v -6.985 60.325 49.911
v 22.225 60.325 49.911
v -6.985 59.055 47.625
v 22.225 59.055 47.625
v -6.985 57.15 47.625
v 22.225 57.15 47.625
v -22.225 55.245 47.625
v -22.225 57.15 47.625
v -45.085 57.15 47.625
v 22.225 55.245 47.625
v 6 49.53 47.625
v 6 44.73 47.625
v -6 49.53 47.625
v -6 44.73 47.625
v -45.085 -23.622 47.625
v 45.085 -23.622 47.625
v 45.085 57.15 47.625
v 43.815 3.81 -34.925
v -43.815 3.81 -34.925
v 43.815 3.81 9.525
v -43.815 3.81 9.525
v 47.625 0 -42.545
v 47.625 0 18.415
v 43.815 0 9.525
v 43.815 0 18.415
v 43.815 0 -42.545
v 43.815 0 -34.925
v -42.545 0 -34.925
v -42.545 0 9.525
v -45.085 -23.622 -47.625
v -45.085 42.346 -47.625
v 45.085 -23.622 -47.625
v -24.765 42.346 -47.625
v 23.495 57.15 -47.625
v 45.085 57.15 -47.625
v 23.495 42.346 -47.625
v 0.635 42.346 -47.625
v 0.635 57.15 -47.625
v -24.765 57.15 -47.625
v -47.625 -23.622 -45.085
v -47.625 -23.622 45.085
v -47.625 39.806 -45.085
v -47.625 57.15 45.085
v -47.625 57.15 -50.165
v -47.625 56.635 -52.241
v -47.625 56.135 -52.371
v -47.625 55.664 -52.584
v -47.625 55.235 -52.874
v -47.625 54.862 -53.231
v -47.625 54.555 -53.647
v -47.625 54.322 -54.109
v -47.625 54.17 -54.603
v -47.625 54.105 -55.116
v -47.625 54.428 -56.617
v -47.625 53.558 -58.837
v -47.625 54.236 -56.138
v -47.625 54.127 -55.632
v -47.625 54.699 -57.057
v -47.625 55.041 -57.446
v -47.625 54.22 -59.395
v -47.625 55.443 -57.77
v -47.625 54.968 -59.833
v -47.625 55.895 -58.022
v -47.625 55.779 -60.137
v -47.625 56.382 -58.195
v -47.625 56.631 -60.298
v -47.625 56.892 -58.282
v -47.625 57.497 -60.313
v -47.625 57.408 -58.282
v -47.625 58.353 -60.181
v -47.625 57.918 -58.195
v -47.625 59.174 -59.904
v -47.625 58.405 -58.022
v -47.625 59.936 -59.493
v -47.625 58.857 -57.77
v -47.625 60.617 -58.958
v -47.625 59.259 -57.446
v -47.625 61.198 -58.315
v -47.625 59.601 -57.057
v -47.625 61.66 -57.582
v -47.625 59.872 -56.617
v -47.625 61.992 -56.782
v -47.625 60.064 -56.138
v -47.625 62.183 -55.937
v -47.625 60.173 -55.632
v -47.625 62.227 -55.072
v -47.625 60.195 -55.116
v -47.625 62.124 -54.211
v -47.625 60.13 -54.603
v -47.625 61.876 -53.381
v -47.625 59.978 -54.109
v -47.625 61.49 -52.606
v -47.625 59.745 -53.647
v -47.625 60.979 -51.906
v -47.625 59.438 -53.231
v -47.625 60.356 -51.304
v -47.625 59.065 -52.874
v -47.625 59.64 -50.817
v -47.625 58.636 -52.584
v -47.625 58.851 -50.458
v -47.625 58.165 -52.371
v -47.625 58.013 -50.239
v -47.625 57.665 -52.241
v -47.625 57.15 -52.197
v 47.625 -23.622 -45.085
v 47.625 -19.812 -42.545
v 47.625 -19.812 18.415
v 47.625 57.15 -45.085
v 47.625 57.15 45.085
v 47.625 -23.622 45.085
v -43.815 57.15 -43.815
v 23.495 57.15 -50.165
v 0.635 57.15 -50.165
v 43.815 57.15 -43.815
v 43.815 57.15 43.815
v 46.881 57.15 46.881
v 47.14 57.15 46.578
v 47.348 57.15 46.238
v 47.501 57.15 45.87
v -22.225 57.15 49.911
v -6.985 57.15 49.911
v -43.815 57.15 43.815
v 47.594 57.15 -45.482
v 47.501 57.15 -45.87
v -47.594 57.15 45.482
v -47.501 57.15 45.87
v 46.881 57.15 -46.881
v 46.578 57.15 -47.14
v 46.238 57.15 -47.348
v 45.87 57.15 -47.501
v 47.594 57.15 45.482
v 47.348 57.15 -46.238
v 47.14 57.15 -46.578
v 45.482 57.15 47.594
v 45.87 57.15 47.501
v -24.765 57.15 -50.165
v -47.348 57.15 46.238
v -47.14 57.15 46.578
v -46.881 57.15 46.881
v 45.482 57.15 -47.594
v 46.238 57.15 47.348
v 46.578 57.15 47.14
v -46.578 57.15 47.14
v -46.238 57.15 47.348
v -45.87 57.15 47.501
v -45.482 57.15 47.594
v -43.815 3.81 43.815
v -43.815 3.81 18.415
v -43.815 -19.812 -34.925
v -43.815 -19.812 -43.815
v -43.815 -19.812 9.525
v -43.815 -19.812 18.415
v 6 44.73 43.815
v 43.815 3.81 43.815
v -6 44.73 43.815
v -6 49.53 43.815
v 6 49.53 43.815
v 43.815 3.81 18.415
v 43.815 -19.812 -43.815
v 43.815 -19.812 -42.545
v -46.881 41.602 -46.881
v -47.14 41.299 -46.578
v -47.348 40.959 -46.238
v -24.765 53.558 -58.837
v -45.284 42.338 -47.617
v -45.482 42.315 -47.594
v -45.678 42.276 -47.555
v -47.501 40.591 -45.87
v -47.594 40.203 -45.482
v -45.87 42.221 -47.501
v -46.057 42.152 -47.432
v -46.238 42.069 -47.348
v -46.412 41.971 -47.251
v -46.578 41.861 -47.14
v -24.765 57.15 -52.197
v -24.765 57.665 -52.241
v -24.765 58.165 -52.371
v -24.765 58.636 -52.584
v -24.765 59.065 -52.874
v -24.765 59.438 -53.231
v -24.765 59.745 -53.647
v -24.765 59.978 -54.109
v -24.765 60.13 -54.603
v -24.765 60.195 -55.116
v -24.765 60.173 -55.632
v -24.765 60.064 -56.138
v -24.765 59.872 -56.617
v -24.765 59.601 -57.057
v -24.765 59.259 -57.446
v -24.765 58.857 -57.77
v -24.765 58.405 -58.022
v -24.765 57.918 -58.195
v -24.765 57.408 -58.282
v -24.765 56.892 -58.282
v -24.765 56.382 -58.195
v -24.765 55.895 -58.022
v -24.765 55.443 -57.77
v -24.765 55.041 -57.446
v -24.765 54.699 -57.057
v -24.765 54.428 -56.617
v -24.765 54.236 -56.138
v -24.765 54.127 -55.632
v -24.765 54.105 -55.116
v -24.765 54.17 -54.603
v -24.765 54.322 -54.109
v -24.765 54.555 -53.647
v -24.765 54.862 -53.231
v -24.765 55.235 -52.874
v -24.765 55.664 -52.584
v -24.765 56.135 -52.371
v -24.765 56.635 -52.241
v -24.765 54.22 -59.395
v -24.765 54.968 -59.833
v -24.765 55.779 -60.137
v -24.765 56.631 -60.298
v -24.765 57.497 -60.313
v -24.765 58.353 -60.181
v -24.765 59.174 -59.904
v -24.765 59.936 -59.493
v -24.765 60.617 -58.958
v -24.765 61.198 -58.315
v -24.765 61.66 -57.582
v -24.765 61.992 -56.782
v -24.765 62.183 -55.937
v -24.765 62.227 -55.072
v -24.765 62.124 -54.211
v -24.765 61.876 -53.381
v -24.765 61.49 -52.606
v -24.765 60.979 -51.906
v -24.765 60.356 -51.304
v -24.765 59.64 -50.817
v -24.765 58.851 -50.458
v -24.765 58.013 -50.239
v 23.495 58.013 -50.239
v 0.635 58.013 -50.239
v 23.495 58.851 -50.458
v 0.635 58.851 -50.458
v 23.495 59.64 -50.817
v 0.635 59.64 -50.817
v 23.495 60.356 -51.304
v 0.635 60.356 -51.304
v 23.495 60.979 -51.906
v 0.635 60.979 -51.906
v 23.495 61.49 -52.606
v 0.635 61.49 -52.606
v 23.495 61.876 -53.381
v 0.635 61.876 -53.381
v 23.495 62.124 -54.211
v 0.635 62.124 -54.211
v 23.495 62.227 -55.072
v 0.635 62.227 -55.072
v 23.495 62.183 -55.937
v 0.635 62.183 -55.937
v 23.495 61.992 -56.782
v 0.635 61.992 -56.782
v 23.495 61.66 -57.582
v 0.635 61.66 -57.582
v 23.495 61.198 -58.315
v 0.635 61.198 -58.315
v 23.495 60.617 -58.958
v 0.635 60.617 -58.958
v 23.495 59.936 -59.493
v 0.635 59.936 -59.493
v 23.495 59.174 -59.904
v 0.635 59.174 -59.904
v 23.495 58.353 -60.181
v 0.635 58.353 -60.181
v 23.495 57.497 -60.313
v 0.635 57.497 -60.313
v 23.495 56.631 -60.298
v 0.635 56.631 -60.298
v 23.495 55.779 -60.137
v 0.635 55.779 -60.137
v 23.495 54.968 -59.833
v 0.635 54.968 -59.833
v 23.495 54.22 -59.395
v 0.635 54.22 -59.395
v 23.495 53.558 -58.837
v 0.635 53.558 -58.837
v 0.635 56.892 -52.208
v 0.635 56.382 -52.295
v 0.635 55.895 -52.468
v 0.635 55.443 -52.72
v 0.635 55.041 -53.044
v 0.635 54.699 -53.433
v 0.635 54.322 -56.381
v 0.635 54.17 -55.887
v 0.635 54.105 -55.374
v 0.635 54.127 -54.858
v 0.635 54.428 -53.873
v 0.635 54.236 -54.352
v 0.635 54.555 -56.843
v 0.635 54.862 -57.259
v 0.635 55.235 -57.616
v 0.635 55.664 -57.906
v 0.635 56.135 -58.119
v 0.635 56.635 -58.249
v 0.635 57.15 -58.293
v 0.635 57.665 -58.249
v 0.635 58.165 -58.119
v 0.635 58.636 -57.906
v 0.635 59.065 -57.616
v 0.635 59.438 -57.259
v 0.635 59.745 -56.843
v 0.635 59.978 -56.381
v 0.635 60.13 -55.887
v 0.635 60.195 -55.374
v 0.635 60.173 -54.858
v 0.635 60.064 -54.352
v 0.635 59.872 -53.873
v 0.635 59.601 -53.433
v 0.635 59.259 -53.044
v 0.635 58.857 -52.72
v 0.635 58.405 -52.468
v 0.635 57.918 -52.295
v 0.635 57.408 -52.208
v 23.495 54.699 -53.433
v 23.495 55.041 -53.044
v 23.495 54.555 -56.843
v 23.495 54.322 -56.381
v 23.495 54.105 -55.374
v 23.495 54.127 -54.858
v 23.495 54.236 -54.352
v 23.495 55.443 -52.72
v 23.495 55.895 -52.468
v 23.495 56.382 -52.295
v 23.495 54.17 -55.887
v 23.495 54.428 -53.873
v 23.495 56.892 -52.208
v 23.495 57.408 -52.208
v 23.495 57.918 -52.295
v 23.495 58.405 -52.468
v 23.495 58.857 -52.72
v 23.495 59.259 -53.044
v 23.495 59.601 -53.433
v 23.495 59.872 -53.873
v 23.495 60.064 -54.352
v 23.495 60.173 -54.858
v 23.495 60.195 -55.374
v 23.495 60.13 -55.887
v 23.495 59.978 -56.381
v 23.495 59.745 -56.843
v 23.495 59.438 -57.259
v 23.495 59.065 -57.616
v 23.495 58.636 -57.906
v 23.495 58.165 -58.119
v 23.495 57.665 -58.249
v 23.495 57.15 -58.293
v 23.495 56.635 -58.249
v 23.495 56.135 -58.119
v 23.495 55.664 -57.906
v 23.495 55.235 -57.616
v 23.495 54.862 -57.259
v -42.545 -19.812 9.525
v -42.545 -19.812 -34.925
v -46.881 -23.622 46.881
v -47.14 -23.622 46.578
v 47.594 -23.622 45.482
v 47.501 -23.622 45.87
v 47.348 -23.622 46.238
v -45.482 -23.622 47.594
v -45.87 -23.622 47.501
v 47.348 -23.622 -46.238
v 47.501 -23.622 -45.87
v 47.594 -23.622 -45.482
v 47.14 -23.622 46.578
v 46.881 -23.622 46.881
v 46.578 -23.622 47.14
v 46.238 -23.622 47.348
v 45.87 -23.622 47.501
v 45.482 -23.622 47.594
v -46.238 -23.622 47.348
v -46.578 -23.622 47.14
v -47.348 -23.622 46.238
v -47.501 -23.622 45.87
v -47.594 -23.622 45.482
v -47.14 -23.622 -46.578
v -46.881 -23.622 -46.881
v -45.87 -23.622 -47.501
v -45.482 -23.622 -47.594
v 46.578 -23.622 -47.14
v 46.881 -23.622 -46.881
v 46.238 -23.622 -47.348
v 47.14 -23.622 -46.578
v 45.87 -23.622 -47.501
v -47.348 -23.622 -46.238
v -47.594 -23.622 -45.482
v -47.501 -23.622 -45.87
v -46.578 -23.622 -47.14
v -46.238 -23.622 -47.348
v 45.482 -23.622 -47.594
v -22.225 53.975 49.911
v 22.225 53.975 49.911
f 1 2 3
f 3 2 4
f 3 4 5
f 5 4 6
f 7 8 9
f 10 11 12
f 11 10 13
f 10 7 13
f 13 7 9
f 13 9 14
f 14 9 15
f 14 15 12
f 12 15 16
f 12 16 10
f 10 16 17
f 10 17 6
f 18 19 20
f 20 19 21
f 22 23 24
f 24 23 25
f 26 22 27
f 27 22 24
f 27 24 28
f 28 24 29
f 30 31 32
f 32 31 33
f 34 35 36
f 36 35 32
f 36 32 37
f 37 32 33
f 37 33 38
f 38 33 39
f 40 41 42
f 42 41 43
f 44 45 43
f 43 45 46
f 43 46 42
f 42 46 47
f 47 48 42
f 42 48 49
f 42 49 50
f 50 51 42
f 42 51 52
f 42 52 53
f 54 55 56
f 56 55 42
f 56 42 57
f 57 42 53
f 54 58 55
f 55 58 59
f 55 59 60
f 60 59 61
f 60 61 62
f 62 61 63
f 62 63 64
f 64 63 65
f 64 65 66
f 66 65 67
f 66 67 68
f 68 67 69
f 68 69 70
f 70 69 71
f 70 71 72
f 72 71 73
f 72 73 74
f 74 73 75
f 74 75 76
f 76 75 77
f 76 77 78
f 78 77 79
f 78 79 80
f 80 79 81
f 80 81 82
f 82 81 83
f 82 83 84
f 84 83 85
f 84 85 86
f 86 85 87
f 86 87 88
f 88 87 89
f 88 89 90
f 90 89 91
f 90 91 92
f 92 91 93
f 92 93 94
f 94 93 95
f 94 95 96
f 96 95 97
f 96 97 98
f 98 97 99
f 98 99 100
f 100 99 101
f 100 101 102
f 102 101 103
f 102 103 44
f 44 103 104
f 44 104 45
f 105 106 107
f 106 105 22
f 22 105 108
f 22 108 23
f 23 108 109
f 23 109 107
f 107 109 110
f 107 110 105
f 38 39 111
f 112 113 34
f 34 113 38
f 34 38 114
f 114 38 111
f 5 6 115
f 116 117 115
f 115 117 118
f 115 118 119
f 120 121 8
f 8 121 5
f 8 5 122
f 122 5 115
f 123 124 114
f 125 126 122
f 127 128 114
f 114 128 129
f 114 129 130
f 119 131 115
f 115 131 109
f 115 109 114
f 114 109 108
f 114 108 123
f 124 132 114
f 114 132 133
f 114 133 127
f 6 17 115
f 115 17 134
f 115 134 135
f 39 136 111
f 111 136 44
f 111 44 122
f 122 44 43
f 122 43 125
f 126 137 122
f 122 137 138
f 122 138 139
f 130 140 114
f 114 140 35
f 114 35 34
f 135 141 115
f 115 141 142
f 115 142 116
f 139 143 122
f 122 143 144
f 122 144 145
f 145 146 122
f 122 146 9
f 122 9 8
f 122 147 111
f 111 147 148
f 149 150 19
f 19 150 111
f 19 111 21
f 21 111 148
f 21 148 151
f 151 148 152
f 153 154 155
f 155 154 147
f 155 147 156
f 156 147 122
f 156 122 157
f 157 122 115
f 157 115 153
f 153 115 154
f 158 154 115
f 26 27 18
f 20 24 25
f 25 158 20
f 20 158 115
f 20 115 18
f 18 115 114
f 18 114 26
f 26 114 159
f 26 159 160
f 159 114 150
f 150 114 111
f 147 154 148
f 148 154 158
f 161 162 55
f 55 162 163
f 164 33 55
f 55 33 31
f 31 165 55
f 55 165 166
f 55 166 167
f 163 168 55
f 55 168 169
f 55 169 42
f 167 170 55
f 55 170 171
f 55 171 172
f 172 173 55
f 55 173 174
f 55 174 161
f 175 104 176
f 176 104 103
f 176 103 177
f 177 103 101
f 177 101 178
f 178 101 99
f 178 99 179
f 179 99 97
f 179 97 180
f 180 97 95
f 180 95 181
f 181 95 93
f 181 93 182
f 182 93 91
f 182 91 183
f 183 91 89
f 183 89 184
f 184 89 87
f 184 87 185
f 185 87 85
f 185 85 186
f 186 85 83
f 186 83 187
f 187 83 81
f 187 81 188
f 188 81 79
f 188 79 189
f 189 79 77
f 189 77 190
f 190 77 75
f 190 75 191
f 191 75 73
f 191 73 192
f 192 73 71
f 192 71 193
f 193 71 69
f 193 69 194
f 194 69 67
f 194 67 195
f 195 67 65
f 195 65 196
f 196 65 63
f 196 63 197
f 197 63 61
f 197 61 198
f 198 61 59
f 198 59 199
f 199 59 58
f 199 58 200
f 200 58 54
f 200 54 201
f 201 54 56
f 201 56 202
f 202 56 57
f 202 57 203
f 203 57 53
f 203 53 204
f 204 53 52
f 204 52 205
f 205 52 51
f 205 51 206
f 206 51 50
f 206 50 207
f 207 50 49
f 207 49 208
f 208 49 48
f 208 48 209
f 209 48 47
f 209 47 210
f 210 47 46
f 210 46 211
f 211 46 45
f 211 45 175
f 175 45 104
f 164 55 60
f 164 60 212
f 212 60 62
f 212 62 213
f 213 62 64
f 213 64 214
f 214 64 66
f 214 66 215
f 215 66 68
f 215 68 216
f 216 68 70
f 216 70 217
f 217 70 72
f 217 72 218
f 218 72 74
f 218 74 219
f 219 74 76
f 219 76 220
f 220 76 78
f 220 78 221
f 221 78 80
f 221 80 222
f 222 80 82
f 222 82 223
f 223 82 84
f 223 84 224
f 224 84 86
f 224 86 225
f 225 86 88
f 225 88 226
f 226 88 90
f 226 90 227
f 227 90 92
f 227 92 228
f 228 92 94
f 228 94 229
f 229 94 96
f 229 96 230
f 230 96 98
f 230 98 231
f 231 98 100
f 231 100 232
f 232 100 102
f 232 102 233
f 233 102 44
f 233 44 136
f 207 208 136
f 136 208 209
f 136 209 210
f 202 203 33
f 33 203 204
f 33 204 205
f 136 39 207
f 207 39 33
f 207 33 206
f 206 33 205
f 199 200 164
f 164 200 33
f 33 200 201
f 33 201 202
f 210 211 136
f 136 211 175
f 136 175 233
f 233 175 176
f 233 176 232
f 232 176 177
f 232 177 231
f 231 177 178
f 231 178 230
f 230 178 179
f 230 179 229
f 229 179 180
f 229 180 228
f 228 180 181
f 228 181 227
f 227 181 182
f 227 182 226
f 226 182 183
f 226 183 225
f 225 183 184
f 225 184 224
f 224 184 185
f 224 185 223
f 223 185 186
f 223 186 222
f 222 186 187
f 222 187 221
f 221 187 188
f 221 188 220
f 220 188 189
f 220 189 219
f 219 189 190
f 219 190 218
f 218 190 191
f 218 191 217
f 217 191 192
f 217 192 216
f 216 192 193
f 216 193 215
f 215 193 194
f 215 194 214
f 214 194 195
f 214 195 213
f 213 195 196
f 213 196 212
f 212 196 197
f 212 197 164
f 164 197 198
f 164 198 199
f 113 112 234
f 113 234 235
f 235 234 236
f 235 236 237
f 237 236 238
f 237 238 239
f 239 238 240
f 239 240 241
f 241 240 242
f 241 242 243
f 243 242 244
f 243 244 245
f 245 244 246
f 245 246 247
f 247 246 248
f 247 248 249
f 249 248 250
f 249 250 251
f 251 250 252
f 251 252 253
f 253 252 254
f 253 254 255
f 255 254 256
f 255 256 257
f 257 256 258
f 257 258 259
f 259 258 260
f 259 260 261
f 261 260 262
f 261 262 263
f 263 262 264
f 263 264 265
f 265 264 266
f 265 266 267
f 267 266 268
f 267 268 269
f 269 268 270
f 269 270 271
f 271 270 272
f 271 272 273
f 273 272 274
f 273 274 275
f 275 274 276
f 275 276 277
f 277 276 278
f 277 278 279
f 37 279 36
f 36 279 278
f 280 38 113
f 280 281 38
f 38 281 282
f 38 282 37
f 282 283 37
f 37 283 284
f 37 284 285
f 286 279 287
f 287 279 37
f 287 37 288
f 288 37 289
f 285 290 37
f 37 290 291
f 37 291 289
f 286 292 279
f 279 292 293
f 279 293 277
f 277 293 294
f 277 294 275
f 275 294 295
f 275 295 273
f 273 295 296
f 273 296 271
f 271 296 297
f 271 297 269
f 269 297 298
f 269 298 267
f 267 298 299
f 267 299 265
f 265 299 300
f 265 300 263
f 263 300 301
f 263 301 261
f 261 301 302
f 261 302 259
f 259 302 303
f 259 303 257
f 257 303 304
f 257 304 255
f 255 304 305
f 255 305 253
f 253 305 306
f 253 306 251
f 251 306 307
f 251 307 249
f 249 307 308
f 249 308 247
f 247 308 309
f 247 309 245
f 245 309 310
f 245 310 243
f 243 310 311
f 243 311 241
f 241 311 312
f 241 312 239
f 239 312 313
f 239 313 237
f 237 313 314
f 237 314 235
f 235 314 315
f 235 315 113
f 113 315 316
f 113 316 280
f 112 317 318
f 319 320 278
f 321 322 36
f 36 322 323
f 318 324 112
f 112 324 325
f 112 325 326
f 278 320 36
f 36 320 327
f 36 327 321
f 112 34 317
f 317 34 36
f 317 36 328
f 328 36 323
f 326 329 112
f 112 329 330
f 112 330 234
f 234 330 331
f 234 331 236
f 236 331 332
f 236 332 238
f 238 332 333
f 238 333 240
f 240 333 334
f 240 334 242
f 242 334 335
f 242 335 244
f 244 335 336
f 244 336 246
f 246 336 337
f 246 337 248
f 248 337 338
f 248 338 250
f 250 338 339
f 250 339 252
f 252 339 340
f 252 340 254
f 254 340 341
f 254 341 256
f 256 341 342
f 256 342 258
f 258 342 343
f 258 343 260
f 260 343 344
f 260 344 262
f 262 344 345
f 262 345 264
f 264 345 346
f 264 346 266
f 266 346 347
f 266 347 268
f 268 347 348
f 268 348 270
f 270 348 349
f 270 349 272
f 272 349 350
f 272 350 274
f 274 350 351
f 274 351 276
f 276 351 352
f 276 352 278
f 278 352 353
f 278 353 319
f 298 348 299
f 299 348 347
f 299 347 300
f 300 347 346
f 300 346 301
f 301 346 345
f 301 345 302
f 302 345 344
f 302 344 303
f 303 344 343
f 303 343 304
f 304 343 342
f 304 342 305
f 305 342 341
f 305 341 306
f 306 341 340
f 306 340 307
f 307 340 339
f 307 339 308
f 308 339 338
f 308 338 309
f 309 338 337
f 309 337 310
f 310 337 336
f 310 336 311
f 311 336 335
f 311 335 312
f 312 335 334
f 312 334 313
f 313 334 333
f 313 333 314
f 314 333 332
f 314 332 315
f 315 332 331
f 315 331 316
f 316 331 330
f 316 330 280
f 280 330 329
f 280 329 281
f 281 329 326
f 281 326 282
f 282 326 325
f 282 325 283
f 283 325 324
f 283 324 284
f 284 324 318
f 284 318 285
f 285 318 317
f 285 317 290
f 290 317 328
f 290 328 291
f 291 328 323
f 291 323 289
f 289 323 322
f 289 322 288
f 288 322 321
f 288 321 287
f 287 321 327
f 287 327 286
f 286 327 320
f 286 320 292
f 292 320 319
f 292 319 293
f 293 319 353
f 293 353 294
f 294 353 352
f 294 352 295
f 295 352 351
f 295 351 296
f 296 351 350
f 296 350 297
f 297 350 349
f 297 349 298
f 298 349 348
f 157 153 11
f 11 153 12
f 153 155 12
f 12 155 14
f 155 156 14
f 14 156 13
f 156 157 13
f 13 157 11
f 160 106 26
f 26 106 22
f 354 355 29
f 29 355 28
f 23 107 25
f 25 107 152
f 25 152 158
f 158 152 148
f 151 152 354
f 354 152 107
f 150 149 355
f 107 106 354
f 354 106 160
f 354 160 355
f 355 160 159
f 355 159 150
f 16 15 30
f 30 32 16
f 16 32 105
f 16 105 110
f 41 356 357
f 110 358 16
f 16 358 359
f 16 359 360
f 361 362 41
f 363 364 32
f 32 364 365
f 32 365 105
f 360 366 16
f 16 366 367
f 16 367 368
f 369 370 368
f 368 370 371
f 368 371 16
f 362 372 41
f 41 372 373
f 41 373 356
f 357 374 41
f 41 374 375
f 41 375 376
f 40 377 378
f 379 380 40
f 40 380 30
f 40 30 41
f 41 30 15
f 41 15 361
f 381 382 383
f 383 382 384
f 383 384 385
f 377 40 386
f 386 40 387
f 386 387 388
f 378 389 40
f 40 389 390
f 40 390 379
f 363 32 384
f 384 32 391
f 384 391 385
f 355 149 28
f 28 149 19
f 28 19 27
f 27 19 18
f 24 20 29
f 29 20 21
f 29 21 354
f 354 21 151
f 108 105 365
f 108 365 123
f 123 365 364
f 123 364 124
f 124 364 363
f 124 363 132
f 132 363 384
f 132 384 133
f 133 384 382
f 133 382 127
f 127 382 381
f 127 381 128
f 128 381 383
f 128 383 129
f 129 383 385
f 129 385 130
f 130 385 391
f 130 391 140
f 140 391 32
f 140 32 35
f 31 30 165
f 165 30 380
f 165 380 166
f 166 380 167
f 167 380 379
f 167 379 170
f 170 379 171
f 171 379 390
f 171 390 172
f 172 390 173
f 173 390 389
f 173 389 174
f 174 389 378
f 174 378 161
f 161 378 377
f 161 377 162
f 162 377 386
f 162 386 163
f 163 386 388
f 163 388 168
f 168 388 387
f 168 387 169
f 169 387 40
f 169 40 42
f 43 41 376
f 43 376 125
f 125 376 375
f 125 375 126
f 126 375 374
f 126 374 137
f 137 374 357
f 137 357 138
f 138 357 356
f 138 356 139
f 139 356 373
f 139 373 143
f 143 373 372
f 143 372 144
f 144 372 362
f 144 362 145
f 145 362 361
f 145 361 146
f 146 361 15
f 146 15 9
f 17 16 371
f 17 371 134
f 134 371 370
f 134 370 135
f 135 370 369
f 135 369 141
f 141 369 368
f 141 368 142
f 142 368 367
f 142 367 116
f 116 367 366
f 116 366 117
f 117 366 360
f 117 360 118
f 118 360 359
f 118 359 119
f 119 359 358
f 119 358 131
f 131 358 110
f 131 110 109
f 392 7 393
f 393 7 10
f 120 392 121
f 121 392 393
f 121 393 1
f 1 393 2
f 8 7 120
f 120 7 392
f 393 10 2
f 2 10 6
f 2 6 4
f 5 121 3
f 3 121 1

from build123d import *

# Parameters (mm, degrees)
SKETCH1_W               = 95.25
SKETCH1_H               = 95.25
BOSS_EXTRUDE1_DEPTH     = 57.15
SHELL1_T                = -3.81
SKETCH2_R               = 3.048
BOSS_EXTRUDE2_DEPTH     = 22.86
BOSS_EXTRUDE3_START     = -24.13
SKETCH5_R               = 3.048
BOSS_EXTRUDE3_DEPTH     = 22.86
SKETCH6_W               = 11.999999876
SKETCH6_H               = 4.800000052
CUT_EXTRUDE1_DEPTH      = 3.81
BOSS_EXTRUDE4_DEPTH     = 19.812
SKETCH9_W               = 95.25
SKETCH9_H               = 3.81
BOSS_EXTRUDE5_DEPTH     = 95.25
SKETCH10_W              = 87.63
SKETCH10_H              = 8.89
CUT_EXTRUDE2_DEPTH      = 23.622
SKETCH11_W              = 87.63
SKETCH11_H              = 8.89
CUT_EXTRUDE3_DEPTH      = 23.622
FILLET1_R               = 2.54
BOSS_EXTRUDE6_START     = -47.625
BOSS_EXTRUDE6_DEPTH     = 22.225
CUT_EXTRUDE4_DEPTH      = 1
CUT_EXTRUDE4_DEPTH_BACK = 3.81


with BuildPart() as part:
    # Sketch1 → Boss-Extrude1 (new body)
    with BuildSketch(Plane(origin=(0, 0, 0), x_dir=(1, 0, 0), z_dir=(0, 1, 0))):
        Rectangle(SKETCH1_W, SKETCH1_H)
    extrude(amount=BOSS_EXTRUDE1_DEPTH)

    # Shell1
    shell1_openings = [part.faces().sort_by_distance(p)[0] for p in [
        (0, 57.15, 0),
    ]]
    offset(amount=SHELL1_T, openings=shell1_openings, kind=Kind.INTERSECTION)

    # Sketch2 → Boss-Extrude2 (add)
    with BuildSketch(Plane.ZY.offset(47.625)):
        with BuildLine():
            ThreePointArc((-50.165, 57.15), (-57.189031836, 61.843308025), (-58.837102448, 53.557897552))
            Line((-58.837102448, 53.557897552), (-47.625, 42.345795103))
            Line((-47.625, 42.345795103), (-47.625, 57.15))
            Line((-47.625, 57.15), (-50.165, 57.15))
        make_face()
        with Locations((-55.245, 57.15)):
            Circle(SKETCH2_R, mode=Mode.SUBTRACT)
    extrude(amount=-BOSS_EXTRUDE2_DEPTH)

    # Sketch5 → Boss-Extrude3 (add)
    with BuildSketch(Plane(origin=(47.625, 0, 0), x_dir=(0, 0, -1), z_dir=(1, 0, 0)).offset(BOSS_EXTRUDE3_START)):
        with BuildLine():
            Line((50.165, 57.15), (47.625, 57.15))
            Line((47.625, 57.15), (47.625, 42.345795103))
            Line((47.625, 42.345795103), (58.837102448, 53.557897552))
            ThreePointArc((58.837102448, 53.557897552), (57.189031836, 61.843308025), (50.165, 57.15))
        make_face()
        with Locations((55.245, 57.15)):
            Circle(SKETCH5_R, mode=Mode.SUBTRACT)
    extrude(amount=-BOSS_EXTRUDE3_DEPTH)

    # Sketch6 → Cut-Extrude1 (cut)
    with BuildSketch(Plane.XY.offset(47.625)):
        with Locations((0, 47.129999974)):
            Rectangle(SKETCH6_W, SKETCH6_H)
    extrude(amount=-CUT_EXTRUDE1_DEPTH, mode=Mode.SUBTRACT)

    # Sketch8 → Boss-Extrude4 (add)
    with BuildSketch(Plane.XZ):
        Polygon((41.275, -42.545), (-42.545, -42.545), (-42.545, 18.415), (41.275, 18.415), (47.625, 18.415), (47.625, 47.625), (-47.625, 47.625), (-47.625, -47.625), (47.625, -47.625), (47.625, -42.545), align=None)
    extrude(amount=BOSS_EXTRUDE4_DEPTH)

    # Sketch9 → Boss-Extrude5 (add, through all)
    with BuildSketch(Plane(origin=(47.625, 0, 0), x_dir=(0, 0, -1), z_dir=(1, 0, 0))):
        with Locations((0, -21.717)):
            Rectangle(SKETCH9_W, SKETCH9_H)
    extrude(amount=-BOSS_EXTRUDE5_DEPTH)

    # Sketch10 → Cut-Extrude2 (cut)
    with BuildSketch(Plane(origin=(0, 3.81, 0), x_dir=(1, 0, 0), z_dir=(0, 1, 0))):
        with Locations((0, 39.37)):
            Rectangle(SKETCH10_W, SKETCH10_H)
    extrude(amount=-CUT_EXTRUDE2_DEPTH, mode=Mode.SUBTRACT)

    # Sketch11 → Cut-Extrude3 (cut)
    with BuildSketch(Plane(origin=(0, 3.81, 0), x_dir=(1, 0, 0), z_dir=(0, 1, 0))):
        with Locations((0, -13.97)):
            Rectangle(SKETCH11_W, SKETCH11_H)
    extrude(amount=-CUT_EXTRUDE3_DEPTH, mode=Mode.SUBTRACT)

    # Fillet1
    fillet1_edges = [part.edges().sort_by_distance(p)[0] for p in [
        (-47.625, 9.361897552, -47.625),
        (47.625, 16.764, -47.625),
        (47.625, 16.764, 47.625),
        (-47.625, 16.764, 47.625),
    ]]
    fillet(fillet1_edges, radius=FILLET1_R)

    # Sketch12 → Boss-Extrude6 (add, symmetric)
    with BuildSketch(Plane(origin=(47.625, 0, 0), x_dir=(0, 0, -1), z_dir=(1, 0, 0)).offset(BOSS_EXTRUDE6_START)):
        Polygon((-47.625, 55.245), (-47.625, 59.055), (-49.911, 60.325), (-49.911, 53.975), align=None)
    extrude(amount=BOSS_EXTRUDE6_DEPTH, both=True)

    # Sketch13 → Cut-Extrude4 (cut, two sides)
    with BuildSketch(Plane.XY.offset(49.911)) as cut_extrude4_sk:
        Polygon((-245.795957614, 57.15), (-22.225, 57.15), (-6.985, 57.15), (-6.985, 60.325), (-6.985, 283.895957614), (-314.864920178, 608.157961407), (-553.675877792, 381.412003793), align=None)
    extrude(amount=CUT_EXTRUDE4_DEPTH, mode=Mode.SUBTRACT)
    extrude(cut_extrude4_sk.sketch, amount=-CUT_EXTRUDE4_DEPTH_BACK, mode=Mode.SUBTRACT)


solid = part.part
